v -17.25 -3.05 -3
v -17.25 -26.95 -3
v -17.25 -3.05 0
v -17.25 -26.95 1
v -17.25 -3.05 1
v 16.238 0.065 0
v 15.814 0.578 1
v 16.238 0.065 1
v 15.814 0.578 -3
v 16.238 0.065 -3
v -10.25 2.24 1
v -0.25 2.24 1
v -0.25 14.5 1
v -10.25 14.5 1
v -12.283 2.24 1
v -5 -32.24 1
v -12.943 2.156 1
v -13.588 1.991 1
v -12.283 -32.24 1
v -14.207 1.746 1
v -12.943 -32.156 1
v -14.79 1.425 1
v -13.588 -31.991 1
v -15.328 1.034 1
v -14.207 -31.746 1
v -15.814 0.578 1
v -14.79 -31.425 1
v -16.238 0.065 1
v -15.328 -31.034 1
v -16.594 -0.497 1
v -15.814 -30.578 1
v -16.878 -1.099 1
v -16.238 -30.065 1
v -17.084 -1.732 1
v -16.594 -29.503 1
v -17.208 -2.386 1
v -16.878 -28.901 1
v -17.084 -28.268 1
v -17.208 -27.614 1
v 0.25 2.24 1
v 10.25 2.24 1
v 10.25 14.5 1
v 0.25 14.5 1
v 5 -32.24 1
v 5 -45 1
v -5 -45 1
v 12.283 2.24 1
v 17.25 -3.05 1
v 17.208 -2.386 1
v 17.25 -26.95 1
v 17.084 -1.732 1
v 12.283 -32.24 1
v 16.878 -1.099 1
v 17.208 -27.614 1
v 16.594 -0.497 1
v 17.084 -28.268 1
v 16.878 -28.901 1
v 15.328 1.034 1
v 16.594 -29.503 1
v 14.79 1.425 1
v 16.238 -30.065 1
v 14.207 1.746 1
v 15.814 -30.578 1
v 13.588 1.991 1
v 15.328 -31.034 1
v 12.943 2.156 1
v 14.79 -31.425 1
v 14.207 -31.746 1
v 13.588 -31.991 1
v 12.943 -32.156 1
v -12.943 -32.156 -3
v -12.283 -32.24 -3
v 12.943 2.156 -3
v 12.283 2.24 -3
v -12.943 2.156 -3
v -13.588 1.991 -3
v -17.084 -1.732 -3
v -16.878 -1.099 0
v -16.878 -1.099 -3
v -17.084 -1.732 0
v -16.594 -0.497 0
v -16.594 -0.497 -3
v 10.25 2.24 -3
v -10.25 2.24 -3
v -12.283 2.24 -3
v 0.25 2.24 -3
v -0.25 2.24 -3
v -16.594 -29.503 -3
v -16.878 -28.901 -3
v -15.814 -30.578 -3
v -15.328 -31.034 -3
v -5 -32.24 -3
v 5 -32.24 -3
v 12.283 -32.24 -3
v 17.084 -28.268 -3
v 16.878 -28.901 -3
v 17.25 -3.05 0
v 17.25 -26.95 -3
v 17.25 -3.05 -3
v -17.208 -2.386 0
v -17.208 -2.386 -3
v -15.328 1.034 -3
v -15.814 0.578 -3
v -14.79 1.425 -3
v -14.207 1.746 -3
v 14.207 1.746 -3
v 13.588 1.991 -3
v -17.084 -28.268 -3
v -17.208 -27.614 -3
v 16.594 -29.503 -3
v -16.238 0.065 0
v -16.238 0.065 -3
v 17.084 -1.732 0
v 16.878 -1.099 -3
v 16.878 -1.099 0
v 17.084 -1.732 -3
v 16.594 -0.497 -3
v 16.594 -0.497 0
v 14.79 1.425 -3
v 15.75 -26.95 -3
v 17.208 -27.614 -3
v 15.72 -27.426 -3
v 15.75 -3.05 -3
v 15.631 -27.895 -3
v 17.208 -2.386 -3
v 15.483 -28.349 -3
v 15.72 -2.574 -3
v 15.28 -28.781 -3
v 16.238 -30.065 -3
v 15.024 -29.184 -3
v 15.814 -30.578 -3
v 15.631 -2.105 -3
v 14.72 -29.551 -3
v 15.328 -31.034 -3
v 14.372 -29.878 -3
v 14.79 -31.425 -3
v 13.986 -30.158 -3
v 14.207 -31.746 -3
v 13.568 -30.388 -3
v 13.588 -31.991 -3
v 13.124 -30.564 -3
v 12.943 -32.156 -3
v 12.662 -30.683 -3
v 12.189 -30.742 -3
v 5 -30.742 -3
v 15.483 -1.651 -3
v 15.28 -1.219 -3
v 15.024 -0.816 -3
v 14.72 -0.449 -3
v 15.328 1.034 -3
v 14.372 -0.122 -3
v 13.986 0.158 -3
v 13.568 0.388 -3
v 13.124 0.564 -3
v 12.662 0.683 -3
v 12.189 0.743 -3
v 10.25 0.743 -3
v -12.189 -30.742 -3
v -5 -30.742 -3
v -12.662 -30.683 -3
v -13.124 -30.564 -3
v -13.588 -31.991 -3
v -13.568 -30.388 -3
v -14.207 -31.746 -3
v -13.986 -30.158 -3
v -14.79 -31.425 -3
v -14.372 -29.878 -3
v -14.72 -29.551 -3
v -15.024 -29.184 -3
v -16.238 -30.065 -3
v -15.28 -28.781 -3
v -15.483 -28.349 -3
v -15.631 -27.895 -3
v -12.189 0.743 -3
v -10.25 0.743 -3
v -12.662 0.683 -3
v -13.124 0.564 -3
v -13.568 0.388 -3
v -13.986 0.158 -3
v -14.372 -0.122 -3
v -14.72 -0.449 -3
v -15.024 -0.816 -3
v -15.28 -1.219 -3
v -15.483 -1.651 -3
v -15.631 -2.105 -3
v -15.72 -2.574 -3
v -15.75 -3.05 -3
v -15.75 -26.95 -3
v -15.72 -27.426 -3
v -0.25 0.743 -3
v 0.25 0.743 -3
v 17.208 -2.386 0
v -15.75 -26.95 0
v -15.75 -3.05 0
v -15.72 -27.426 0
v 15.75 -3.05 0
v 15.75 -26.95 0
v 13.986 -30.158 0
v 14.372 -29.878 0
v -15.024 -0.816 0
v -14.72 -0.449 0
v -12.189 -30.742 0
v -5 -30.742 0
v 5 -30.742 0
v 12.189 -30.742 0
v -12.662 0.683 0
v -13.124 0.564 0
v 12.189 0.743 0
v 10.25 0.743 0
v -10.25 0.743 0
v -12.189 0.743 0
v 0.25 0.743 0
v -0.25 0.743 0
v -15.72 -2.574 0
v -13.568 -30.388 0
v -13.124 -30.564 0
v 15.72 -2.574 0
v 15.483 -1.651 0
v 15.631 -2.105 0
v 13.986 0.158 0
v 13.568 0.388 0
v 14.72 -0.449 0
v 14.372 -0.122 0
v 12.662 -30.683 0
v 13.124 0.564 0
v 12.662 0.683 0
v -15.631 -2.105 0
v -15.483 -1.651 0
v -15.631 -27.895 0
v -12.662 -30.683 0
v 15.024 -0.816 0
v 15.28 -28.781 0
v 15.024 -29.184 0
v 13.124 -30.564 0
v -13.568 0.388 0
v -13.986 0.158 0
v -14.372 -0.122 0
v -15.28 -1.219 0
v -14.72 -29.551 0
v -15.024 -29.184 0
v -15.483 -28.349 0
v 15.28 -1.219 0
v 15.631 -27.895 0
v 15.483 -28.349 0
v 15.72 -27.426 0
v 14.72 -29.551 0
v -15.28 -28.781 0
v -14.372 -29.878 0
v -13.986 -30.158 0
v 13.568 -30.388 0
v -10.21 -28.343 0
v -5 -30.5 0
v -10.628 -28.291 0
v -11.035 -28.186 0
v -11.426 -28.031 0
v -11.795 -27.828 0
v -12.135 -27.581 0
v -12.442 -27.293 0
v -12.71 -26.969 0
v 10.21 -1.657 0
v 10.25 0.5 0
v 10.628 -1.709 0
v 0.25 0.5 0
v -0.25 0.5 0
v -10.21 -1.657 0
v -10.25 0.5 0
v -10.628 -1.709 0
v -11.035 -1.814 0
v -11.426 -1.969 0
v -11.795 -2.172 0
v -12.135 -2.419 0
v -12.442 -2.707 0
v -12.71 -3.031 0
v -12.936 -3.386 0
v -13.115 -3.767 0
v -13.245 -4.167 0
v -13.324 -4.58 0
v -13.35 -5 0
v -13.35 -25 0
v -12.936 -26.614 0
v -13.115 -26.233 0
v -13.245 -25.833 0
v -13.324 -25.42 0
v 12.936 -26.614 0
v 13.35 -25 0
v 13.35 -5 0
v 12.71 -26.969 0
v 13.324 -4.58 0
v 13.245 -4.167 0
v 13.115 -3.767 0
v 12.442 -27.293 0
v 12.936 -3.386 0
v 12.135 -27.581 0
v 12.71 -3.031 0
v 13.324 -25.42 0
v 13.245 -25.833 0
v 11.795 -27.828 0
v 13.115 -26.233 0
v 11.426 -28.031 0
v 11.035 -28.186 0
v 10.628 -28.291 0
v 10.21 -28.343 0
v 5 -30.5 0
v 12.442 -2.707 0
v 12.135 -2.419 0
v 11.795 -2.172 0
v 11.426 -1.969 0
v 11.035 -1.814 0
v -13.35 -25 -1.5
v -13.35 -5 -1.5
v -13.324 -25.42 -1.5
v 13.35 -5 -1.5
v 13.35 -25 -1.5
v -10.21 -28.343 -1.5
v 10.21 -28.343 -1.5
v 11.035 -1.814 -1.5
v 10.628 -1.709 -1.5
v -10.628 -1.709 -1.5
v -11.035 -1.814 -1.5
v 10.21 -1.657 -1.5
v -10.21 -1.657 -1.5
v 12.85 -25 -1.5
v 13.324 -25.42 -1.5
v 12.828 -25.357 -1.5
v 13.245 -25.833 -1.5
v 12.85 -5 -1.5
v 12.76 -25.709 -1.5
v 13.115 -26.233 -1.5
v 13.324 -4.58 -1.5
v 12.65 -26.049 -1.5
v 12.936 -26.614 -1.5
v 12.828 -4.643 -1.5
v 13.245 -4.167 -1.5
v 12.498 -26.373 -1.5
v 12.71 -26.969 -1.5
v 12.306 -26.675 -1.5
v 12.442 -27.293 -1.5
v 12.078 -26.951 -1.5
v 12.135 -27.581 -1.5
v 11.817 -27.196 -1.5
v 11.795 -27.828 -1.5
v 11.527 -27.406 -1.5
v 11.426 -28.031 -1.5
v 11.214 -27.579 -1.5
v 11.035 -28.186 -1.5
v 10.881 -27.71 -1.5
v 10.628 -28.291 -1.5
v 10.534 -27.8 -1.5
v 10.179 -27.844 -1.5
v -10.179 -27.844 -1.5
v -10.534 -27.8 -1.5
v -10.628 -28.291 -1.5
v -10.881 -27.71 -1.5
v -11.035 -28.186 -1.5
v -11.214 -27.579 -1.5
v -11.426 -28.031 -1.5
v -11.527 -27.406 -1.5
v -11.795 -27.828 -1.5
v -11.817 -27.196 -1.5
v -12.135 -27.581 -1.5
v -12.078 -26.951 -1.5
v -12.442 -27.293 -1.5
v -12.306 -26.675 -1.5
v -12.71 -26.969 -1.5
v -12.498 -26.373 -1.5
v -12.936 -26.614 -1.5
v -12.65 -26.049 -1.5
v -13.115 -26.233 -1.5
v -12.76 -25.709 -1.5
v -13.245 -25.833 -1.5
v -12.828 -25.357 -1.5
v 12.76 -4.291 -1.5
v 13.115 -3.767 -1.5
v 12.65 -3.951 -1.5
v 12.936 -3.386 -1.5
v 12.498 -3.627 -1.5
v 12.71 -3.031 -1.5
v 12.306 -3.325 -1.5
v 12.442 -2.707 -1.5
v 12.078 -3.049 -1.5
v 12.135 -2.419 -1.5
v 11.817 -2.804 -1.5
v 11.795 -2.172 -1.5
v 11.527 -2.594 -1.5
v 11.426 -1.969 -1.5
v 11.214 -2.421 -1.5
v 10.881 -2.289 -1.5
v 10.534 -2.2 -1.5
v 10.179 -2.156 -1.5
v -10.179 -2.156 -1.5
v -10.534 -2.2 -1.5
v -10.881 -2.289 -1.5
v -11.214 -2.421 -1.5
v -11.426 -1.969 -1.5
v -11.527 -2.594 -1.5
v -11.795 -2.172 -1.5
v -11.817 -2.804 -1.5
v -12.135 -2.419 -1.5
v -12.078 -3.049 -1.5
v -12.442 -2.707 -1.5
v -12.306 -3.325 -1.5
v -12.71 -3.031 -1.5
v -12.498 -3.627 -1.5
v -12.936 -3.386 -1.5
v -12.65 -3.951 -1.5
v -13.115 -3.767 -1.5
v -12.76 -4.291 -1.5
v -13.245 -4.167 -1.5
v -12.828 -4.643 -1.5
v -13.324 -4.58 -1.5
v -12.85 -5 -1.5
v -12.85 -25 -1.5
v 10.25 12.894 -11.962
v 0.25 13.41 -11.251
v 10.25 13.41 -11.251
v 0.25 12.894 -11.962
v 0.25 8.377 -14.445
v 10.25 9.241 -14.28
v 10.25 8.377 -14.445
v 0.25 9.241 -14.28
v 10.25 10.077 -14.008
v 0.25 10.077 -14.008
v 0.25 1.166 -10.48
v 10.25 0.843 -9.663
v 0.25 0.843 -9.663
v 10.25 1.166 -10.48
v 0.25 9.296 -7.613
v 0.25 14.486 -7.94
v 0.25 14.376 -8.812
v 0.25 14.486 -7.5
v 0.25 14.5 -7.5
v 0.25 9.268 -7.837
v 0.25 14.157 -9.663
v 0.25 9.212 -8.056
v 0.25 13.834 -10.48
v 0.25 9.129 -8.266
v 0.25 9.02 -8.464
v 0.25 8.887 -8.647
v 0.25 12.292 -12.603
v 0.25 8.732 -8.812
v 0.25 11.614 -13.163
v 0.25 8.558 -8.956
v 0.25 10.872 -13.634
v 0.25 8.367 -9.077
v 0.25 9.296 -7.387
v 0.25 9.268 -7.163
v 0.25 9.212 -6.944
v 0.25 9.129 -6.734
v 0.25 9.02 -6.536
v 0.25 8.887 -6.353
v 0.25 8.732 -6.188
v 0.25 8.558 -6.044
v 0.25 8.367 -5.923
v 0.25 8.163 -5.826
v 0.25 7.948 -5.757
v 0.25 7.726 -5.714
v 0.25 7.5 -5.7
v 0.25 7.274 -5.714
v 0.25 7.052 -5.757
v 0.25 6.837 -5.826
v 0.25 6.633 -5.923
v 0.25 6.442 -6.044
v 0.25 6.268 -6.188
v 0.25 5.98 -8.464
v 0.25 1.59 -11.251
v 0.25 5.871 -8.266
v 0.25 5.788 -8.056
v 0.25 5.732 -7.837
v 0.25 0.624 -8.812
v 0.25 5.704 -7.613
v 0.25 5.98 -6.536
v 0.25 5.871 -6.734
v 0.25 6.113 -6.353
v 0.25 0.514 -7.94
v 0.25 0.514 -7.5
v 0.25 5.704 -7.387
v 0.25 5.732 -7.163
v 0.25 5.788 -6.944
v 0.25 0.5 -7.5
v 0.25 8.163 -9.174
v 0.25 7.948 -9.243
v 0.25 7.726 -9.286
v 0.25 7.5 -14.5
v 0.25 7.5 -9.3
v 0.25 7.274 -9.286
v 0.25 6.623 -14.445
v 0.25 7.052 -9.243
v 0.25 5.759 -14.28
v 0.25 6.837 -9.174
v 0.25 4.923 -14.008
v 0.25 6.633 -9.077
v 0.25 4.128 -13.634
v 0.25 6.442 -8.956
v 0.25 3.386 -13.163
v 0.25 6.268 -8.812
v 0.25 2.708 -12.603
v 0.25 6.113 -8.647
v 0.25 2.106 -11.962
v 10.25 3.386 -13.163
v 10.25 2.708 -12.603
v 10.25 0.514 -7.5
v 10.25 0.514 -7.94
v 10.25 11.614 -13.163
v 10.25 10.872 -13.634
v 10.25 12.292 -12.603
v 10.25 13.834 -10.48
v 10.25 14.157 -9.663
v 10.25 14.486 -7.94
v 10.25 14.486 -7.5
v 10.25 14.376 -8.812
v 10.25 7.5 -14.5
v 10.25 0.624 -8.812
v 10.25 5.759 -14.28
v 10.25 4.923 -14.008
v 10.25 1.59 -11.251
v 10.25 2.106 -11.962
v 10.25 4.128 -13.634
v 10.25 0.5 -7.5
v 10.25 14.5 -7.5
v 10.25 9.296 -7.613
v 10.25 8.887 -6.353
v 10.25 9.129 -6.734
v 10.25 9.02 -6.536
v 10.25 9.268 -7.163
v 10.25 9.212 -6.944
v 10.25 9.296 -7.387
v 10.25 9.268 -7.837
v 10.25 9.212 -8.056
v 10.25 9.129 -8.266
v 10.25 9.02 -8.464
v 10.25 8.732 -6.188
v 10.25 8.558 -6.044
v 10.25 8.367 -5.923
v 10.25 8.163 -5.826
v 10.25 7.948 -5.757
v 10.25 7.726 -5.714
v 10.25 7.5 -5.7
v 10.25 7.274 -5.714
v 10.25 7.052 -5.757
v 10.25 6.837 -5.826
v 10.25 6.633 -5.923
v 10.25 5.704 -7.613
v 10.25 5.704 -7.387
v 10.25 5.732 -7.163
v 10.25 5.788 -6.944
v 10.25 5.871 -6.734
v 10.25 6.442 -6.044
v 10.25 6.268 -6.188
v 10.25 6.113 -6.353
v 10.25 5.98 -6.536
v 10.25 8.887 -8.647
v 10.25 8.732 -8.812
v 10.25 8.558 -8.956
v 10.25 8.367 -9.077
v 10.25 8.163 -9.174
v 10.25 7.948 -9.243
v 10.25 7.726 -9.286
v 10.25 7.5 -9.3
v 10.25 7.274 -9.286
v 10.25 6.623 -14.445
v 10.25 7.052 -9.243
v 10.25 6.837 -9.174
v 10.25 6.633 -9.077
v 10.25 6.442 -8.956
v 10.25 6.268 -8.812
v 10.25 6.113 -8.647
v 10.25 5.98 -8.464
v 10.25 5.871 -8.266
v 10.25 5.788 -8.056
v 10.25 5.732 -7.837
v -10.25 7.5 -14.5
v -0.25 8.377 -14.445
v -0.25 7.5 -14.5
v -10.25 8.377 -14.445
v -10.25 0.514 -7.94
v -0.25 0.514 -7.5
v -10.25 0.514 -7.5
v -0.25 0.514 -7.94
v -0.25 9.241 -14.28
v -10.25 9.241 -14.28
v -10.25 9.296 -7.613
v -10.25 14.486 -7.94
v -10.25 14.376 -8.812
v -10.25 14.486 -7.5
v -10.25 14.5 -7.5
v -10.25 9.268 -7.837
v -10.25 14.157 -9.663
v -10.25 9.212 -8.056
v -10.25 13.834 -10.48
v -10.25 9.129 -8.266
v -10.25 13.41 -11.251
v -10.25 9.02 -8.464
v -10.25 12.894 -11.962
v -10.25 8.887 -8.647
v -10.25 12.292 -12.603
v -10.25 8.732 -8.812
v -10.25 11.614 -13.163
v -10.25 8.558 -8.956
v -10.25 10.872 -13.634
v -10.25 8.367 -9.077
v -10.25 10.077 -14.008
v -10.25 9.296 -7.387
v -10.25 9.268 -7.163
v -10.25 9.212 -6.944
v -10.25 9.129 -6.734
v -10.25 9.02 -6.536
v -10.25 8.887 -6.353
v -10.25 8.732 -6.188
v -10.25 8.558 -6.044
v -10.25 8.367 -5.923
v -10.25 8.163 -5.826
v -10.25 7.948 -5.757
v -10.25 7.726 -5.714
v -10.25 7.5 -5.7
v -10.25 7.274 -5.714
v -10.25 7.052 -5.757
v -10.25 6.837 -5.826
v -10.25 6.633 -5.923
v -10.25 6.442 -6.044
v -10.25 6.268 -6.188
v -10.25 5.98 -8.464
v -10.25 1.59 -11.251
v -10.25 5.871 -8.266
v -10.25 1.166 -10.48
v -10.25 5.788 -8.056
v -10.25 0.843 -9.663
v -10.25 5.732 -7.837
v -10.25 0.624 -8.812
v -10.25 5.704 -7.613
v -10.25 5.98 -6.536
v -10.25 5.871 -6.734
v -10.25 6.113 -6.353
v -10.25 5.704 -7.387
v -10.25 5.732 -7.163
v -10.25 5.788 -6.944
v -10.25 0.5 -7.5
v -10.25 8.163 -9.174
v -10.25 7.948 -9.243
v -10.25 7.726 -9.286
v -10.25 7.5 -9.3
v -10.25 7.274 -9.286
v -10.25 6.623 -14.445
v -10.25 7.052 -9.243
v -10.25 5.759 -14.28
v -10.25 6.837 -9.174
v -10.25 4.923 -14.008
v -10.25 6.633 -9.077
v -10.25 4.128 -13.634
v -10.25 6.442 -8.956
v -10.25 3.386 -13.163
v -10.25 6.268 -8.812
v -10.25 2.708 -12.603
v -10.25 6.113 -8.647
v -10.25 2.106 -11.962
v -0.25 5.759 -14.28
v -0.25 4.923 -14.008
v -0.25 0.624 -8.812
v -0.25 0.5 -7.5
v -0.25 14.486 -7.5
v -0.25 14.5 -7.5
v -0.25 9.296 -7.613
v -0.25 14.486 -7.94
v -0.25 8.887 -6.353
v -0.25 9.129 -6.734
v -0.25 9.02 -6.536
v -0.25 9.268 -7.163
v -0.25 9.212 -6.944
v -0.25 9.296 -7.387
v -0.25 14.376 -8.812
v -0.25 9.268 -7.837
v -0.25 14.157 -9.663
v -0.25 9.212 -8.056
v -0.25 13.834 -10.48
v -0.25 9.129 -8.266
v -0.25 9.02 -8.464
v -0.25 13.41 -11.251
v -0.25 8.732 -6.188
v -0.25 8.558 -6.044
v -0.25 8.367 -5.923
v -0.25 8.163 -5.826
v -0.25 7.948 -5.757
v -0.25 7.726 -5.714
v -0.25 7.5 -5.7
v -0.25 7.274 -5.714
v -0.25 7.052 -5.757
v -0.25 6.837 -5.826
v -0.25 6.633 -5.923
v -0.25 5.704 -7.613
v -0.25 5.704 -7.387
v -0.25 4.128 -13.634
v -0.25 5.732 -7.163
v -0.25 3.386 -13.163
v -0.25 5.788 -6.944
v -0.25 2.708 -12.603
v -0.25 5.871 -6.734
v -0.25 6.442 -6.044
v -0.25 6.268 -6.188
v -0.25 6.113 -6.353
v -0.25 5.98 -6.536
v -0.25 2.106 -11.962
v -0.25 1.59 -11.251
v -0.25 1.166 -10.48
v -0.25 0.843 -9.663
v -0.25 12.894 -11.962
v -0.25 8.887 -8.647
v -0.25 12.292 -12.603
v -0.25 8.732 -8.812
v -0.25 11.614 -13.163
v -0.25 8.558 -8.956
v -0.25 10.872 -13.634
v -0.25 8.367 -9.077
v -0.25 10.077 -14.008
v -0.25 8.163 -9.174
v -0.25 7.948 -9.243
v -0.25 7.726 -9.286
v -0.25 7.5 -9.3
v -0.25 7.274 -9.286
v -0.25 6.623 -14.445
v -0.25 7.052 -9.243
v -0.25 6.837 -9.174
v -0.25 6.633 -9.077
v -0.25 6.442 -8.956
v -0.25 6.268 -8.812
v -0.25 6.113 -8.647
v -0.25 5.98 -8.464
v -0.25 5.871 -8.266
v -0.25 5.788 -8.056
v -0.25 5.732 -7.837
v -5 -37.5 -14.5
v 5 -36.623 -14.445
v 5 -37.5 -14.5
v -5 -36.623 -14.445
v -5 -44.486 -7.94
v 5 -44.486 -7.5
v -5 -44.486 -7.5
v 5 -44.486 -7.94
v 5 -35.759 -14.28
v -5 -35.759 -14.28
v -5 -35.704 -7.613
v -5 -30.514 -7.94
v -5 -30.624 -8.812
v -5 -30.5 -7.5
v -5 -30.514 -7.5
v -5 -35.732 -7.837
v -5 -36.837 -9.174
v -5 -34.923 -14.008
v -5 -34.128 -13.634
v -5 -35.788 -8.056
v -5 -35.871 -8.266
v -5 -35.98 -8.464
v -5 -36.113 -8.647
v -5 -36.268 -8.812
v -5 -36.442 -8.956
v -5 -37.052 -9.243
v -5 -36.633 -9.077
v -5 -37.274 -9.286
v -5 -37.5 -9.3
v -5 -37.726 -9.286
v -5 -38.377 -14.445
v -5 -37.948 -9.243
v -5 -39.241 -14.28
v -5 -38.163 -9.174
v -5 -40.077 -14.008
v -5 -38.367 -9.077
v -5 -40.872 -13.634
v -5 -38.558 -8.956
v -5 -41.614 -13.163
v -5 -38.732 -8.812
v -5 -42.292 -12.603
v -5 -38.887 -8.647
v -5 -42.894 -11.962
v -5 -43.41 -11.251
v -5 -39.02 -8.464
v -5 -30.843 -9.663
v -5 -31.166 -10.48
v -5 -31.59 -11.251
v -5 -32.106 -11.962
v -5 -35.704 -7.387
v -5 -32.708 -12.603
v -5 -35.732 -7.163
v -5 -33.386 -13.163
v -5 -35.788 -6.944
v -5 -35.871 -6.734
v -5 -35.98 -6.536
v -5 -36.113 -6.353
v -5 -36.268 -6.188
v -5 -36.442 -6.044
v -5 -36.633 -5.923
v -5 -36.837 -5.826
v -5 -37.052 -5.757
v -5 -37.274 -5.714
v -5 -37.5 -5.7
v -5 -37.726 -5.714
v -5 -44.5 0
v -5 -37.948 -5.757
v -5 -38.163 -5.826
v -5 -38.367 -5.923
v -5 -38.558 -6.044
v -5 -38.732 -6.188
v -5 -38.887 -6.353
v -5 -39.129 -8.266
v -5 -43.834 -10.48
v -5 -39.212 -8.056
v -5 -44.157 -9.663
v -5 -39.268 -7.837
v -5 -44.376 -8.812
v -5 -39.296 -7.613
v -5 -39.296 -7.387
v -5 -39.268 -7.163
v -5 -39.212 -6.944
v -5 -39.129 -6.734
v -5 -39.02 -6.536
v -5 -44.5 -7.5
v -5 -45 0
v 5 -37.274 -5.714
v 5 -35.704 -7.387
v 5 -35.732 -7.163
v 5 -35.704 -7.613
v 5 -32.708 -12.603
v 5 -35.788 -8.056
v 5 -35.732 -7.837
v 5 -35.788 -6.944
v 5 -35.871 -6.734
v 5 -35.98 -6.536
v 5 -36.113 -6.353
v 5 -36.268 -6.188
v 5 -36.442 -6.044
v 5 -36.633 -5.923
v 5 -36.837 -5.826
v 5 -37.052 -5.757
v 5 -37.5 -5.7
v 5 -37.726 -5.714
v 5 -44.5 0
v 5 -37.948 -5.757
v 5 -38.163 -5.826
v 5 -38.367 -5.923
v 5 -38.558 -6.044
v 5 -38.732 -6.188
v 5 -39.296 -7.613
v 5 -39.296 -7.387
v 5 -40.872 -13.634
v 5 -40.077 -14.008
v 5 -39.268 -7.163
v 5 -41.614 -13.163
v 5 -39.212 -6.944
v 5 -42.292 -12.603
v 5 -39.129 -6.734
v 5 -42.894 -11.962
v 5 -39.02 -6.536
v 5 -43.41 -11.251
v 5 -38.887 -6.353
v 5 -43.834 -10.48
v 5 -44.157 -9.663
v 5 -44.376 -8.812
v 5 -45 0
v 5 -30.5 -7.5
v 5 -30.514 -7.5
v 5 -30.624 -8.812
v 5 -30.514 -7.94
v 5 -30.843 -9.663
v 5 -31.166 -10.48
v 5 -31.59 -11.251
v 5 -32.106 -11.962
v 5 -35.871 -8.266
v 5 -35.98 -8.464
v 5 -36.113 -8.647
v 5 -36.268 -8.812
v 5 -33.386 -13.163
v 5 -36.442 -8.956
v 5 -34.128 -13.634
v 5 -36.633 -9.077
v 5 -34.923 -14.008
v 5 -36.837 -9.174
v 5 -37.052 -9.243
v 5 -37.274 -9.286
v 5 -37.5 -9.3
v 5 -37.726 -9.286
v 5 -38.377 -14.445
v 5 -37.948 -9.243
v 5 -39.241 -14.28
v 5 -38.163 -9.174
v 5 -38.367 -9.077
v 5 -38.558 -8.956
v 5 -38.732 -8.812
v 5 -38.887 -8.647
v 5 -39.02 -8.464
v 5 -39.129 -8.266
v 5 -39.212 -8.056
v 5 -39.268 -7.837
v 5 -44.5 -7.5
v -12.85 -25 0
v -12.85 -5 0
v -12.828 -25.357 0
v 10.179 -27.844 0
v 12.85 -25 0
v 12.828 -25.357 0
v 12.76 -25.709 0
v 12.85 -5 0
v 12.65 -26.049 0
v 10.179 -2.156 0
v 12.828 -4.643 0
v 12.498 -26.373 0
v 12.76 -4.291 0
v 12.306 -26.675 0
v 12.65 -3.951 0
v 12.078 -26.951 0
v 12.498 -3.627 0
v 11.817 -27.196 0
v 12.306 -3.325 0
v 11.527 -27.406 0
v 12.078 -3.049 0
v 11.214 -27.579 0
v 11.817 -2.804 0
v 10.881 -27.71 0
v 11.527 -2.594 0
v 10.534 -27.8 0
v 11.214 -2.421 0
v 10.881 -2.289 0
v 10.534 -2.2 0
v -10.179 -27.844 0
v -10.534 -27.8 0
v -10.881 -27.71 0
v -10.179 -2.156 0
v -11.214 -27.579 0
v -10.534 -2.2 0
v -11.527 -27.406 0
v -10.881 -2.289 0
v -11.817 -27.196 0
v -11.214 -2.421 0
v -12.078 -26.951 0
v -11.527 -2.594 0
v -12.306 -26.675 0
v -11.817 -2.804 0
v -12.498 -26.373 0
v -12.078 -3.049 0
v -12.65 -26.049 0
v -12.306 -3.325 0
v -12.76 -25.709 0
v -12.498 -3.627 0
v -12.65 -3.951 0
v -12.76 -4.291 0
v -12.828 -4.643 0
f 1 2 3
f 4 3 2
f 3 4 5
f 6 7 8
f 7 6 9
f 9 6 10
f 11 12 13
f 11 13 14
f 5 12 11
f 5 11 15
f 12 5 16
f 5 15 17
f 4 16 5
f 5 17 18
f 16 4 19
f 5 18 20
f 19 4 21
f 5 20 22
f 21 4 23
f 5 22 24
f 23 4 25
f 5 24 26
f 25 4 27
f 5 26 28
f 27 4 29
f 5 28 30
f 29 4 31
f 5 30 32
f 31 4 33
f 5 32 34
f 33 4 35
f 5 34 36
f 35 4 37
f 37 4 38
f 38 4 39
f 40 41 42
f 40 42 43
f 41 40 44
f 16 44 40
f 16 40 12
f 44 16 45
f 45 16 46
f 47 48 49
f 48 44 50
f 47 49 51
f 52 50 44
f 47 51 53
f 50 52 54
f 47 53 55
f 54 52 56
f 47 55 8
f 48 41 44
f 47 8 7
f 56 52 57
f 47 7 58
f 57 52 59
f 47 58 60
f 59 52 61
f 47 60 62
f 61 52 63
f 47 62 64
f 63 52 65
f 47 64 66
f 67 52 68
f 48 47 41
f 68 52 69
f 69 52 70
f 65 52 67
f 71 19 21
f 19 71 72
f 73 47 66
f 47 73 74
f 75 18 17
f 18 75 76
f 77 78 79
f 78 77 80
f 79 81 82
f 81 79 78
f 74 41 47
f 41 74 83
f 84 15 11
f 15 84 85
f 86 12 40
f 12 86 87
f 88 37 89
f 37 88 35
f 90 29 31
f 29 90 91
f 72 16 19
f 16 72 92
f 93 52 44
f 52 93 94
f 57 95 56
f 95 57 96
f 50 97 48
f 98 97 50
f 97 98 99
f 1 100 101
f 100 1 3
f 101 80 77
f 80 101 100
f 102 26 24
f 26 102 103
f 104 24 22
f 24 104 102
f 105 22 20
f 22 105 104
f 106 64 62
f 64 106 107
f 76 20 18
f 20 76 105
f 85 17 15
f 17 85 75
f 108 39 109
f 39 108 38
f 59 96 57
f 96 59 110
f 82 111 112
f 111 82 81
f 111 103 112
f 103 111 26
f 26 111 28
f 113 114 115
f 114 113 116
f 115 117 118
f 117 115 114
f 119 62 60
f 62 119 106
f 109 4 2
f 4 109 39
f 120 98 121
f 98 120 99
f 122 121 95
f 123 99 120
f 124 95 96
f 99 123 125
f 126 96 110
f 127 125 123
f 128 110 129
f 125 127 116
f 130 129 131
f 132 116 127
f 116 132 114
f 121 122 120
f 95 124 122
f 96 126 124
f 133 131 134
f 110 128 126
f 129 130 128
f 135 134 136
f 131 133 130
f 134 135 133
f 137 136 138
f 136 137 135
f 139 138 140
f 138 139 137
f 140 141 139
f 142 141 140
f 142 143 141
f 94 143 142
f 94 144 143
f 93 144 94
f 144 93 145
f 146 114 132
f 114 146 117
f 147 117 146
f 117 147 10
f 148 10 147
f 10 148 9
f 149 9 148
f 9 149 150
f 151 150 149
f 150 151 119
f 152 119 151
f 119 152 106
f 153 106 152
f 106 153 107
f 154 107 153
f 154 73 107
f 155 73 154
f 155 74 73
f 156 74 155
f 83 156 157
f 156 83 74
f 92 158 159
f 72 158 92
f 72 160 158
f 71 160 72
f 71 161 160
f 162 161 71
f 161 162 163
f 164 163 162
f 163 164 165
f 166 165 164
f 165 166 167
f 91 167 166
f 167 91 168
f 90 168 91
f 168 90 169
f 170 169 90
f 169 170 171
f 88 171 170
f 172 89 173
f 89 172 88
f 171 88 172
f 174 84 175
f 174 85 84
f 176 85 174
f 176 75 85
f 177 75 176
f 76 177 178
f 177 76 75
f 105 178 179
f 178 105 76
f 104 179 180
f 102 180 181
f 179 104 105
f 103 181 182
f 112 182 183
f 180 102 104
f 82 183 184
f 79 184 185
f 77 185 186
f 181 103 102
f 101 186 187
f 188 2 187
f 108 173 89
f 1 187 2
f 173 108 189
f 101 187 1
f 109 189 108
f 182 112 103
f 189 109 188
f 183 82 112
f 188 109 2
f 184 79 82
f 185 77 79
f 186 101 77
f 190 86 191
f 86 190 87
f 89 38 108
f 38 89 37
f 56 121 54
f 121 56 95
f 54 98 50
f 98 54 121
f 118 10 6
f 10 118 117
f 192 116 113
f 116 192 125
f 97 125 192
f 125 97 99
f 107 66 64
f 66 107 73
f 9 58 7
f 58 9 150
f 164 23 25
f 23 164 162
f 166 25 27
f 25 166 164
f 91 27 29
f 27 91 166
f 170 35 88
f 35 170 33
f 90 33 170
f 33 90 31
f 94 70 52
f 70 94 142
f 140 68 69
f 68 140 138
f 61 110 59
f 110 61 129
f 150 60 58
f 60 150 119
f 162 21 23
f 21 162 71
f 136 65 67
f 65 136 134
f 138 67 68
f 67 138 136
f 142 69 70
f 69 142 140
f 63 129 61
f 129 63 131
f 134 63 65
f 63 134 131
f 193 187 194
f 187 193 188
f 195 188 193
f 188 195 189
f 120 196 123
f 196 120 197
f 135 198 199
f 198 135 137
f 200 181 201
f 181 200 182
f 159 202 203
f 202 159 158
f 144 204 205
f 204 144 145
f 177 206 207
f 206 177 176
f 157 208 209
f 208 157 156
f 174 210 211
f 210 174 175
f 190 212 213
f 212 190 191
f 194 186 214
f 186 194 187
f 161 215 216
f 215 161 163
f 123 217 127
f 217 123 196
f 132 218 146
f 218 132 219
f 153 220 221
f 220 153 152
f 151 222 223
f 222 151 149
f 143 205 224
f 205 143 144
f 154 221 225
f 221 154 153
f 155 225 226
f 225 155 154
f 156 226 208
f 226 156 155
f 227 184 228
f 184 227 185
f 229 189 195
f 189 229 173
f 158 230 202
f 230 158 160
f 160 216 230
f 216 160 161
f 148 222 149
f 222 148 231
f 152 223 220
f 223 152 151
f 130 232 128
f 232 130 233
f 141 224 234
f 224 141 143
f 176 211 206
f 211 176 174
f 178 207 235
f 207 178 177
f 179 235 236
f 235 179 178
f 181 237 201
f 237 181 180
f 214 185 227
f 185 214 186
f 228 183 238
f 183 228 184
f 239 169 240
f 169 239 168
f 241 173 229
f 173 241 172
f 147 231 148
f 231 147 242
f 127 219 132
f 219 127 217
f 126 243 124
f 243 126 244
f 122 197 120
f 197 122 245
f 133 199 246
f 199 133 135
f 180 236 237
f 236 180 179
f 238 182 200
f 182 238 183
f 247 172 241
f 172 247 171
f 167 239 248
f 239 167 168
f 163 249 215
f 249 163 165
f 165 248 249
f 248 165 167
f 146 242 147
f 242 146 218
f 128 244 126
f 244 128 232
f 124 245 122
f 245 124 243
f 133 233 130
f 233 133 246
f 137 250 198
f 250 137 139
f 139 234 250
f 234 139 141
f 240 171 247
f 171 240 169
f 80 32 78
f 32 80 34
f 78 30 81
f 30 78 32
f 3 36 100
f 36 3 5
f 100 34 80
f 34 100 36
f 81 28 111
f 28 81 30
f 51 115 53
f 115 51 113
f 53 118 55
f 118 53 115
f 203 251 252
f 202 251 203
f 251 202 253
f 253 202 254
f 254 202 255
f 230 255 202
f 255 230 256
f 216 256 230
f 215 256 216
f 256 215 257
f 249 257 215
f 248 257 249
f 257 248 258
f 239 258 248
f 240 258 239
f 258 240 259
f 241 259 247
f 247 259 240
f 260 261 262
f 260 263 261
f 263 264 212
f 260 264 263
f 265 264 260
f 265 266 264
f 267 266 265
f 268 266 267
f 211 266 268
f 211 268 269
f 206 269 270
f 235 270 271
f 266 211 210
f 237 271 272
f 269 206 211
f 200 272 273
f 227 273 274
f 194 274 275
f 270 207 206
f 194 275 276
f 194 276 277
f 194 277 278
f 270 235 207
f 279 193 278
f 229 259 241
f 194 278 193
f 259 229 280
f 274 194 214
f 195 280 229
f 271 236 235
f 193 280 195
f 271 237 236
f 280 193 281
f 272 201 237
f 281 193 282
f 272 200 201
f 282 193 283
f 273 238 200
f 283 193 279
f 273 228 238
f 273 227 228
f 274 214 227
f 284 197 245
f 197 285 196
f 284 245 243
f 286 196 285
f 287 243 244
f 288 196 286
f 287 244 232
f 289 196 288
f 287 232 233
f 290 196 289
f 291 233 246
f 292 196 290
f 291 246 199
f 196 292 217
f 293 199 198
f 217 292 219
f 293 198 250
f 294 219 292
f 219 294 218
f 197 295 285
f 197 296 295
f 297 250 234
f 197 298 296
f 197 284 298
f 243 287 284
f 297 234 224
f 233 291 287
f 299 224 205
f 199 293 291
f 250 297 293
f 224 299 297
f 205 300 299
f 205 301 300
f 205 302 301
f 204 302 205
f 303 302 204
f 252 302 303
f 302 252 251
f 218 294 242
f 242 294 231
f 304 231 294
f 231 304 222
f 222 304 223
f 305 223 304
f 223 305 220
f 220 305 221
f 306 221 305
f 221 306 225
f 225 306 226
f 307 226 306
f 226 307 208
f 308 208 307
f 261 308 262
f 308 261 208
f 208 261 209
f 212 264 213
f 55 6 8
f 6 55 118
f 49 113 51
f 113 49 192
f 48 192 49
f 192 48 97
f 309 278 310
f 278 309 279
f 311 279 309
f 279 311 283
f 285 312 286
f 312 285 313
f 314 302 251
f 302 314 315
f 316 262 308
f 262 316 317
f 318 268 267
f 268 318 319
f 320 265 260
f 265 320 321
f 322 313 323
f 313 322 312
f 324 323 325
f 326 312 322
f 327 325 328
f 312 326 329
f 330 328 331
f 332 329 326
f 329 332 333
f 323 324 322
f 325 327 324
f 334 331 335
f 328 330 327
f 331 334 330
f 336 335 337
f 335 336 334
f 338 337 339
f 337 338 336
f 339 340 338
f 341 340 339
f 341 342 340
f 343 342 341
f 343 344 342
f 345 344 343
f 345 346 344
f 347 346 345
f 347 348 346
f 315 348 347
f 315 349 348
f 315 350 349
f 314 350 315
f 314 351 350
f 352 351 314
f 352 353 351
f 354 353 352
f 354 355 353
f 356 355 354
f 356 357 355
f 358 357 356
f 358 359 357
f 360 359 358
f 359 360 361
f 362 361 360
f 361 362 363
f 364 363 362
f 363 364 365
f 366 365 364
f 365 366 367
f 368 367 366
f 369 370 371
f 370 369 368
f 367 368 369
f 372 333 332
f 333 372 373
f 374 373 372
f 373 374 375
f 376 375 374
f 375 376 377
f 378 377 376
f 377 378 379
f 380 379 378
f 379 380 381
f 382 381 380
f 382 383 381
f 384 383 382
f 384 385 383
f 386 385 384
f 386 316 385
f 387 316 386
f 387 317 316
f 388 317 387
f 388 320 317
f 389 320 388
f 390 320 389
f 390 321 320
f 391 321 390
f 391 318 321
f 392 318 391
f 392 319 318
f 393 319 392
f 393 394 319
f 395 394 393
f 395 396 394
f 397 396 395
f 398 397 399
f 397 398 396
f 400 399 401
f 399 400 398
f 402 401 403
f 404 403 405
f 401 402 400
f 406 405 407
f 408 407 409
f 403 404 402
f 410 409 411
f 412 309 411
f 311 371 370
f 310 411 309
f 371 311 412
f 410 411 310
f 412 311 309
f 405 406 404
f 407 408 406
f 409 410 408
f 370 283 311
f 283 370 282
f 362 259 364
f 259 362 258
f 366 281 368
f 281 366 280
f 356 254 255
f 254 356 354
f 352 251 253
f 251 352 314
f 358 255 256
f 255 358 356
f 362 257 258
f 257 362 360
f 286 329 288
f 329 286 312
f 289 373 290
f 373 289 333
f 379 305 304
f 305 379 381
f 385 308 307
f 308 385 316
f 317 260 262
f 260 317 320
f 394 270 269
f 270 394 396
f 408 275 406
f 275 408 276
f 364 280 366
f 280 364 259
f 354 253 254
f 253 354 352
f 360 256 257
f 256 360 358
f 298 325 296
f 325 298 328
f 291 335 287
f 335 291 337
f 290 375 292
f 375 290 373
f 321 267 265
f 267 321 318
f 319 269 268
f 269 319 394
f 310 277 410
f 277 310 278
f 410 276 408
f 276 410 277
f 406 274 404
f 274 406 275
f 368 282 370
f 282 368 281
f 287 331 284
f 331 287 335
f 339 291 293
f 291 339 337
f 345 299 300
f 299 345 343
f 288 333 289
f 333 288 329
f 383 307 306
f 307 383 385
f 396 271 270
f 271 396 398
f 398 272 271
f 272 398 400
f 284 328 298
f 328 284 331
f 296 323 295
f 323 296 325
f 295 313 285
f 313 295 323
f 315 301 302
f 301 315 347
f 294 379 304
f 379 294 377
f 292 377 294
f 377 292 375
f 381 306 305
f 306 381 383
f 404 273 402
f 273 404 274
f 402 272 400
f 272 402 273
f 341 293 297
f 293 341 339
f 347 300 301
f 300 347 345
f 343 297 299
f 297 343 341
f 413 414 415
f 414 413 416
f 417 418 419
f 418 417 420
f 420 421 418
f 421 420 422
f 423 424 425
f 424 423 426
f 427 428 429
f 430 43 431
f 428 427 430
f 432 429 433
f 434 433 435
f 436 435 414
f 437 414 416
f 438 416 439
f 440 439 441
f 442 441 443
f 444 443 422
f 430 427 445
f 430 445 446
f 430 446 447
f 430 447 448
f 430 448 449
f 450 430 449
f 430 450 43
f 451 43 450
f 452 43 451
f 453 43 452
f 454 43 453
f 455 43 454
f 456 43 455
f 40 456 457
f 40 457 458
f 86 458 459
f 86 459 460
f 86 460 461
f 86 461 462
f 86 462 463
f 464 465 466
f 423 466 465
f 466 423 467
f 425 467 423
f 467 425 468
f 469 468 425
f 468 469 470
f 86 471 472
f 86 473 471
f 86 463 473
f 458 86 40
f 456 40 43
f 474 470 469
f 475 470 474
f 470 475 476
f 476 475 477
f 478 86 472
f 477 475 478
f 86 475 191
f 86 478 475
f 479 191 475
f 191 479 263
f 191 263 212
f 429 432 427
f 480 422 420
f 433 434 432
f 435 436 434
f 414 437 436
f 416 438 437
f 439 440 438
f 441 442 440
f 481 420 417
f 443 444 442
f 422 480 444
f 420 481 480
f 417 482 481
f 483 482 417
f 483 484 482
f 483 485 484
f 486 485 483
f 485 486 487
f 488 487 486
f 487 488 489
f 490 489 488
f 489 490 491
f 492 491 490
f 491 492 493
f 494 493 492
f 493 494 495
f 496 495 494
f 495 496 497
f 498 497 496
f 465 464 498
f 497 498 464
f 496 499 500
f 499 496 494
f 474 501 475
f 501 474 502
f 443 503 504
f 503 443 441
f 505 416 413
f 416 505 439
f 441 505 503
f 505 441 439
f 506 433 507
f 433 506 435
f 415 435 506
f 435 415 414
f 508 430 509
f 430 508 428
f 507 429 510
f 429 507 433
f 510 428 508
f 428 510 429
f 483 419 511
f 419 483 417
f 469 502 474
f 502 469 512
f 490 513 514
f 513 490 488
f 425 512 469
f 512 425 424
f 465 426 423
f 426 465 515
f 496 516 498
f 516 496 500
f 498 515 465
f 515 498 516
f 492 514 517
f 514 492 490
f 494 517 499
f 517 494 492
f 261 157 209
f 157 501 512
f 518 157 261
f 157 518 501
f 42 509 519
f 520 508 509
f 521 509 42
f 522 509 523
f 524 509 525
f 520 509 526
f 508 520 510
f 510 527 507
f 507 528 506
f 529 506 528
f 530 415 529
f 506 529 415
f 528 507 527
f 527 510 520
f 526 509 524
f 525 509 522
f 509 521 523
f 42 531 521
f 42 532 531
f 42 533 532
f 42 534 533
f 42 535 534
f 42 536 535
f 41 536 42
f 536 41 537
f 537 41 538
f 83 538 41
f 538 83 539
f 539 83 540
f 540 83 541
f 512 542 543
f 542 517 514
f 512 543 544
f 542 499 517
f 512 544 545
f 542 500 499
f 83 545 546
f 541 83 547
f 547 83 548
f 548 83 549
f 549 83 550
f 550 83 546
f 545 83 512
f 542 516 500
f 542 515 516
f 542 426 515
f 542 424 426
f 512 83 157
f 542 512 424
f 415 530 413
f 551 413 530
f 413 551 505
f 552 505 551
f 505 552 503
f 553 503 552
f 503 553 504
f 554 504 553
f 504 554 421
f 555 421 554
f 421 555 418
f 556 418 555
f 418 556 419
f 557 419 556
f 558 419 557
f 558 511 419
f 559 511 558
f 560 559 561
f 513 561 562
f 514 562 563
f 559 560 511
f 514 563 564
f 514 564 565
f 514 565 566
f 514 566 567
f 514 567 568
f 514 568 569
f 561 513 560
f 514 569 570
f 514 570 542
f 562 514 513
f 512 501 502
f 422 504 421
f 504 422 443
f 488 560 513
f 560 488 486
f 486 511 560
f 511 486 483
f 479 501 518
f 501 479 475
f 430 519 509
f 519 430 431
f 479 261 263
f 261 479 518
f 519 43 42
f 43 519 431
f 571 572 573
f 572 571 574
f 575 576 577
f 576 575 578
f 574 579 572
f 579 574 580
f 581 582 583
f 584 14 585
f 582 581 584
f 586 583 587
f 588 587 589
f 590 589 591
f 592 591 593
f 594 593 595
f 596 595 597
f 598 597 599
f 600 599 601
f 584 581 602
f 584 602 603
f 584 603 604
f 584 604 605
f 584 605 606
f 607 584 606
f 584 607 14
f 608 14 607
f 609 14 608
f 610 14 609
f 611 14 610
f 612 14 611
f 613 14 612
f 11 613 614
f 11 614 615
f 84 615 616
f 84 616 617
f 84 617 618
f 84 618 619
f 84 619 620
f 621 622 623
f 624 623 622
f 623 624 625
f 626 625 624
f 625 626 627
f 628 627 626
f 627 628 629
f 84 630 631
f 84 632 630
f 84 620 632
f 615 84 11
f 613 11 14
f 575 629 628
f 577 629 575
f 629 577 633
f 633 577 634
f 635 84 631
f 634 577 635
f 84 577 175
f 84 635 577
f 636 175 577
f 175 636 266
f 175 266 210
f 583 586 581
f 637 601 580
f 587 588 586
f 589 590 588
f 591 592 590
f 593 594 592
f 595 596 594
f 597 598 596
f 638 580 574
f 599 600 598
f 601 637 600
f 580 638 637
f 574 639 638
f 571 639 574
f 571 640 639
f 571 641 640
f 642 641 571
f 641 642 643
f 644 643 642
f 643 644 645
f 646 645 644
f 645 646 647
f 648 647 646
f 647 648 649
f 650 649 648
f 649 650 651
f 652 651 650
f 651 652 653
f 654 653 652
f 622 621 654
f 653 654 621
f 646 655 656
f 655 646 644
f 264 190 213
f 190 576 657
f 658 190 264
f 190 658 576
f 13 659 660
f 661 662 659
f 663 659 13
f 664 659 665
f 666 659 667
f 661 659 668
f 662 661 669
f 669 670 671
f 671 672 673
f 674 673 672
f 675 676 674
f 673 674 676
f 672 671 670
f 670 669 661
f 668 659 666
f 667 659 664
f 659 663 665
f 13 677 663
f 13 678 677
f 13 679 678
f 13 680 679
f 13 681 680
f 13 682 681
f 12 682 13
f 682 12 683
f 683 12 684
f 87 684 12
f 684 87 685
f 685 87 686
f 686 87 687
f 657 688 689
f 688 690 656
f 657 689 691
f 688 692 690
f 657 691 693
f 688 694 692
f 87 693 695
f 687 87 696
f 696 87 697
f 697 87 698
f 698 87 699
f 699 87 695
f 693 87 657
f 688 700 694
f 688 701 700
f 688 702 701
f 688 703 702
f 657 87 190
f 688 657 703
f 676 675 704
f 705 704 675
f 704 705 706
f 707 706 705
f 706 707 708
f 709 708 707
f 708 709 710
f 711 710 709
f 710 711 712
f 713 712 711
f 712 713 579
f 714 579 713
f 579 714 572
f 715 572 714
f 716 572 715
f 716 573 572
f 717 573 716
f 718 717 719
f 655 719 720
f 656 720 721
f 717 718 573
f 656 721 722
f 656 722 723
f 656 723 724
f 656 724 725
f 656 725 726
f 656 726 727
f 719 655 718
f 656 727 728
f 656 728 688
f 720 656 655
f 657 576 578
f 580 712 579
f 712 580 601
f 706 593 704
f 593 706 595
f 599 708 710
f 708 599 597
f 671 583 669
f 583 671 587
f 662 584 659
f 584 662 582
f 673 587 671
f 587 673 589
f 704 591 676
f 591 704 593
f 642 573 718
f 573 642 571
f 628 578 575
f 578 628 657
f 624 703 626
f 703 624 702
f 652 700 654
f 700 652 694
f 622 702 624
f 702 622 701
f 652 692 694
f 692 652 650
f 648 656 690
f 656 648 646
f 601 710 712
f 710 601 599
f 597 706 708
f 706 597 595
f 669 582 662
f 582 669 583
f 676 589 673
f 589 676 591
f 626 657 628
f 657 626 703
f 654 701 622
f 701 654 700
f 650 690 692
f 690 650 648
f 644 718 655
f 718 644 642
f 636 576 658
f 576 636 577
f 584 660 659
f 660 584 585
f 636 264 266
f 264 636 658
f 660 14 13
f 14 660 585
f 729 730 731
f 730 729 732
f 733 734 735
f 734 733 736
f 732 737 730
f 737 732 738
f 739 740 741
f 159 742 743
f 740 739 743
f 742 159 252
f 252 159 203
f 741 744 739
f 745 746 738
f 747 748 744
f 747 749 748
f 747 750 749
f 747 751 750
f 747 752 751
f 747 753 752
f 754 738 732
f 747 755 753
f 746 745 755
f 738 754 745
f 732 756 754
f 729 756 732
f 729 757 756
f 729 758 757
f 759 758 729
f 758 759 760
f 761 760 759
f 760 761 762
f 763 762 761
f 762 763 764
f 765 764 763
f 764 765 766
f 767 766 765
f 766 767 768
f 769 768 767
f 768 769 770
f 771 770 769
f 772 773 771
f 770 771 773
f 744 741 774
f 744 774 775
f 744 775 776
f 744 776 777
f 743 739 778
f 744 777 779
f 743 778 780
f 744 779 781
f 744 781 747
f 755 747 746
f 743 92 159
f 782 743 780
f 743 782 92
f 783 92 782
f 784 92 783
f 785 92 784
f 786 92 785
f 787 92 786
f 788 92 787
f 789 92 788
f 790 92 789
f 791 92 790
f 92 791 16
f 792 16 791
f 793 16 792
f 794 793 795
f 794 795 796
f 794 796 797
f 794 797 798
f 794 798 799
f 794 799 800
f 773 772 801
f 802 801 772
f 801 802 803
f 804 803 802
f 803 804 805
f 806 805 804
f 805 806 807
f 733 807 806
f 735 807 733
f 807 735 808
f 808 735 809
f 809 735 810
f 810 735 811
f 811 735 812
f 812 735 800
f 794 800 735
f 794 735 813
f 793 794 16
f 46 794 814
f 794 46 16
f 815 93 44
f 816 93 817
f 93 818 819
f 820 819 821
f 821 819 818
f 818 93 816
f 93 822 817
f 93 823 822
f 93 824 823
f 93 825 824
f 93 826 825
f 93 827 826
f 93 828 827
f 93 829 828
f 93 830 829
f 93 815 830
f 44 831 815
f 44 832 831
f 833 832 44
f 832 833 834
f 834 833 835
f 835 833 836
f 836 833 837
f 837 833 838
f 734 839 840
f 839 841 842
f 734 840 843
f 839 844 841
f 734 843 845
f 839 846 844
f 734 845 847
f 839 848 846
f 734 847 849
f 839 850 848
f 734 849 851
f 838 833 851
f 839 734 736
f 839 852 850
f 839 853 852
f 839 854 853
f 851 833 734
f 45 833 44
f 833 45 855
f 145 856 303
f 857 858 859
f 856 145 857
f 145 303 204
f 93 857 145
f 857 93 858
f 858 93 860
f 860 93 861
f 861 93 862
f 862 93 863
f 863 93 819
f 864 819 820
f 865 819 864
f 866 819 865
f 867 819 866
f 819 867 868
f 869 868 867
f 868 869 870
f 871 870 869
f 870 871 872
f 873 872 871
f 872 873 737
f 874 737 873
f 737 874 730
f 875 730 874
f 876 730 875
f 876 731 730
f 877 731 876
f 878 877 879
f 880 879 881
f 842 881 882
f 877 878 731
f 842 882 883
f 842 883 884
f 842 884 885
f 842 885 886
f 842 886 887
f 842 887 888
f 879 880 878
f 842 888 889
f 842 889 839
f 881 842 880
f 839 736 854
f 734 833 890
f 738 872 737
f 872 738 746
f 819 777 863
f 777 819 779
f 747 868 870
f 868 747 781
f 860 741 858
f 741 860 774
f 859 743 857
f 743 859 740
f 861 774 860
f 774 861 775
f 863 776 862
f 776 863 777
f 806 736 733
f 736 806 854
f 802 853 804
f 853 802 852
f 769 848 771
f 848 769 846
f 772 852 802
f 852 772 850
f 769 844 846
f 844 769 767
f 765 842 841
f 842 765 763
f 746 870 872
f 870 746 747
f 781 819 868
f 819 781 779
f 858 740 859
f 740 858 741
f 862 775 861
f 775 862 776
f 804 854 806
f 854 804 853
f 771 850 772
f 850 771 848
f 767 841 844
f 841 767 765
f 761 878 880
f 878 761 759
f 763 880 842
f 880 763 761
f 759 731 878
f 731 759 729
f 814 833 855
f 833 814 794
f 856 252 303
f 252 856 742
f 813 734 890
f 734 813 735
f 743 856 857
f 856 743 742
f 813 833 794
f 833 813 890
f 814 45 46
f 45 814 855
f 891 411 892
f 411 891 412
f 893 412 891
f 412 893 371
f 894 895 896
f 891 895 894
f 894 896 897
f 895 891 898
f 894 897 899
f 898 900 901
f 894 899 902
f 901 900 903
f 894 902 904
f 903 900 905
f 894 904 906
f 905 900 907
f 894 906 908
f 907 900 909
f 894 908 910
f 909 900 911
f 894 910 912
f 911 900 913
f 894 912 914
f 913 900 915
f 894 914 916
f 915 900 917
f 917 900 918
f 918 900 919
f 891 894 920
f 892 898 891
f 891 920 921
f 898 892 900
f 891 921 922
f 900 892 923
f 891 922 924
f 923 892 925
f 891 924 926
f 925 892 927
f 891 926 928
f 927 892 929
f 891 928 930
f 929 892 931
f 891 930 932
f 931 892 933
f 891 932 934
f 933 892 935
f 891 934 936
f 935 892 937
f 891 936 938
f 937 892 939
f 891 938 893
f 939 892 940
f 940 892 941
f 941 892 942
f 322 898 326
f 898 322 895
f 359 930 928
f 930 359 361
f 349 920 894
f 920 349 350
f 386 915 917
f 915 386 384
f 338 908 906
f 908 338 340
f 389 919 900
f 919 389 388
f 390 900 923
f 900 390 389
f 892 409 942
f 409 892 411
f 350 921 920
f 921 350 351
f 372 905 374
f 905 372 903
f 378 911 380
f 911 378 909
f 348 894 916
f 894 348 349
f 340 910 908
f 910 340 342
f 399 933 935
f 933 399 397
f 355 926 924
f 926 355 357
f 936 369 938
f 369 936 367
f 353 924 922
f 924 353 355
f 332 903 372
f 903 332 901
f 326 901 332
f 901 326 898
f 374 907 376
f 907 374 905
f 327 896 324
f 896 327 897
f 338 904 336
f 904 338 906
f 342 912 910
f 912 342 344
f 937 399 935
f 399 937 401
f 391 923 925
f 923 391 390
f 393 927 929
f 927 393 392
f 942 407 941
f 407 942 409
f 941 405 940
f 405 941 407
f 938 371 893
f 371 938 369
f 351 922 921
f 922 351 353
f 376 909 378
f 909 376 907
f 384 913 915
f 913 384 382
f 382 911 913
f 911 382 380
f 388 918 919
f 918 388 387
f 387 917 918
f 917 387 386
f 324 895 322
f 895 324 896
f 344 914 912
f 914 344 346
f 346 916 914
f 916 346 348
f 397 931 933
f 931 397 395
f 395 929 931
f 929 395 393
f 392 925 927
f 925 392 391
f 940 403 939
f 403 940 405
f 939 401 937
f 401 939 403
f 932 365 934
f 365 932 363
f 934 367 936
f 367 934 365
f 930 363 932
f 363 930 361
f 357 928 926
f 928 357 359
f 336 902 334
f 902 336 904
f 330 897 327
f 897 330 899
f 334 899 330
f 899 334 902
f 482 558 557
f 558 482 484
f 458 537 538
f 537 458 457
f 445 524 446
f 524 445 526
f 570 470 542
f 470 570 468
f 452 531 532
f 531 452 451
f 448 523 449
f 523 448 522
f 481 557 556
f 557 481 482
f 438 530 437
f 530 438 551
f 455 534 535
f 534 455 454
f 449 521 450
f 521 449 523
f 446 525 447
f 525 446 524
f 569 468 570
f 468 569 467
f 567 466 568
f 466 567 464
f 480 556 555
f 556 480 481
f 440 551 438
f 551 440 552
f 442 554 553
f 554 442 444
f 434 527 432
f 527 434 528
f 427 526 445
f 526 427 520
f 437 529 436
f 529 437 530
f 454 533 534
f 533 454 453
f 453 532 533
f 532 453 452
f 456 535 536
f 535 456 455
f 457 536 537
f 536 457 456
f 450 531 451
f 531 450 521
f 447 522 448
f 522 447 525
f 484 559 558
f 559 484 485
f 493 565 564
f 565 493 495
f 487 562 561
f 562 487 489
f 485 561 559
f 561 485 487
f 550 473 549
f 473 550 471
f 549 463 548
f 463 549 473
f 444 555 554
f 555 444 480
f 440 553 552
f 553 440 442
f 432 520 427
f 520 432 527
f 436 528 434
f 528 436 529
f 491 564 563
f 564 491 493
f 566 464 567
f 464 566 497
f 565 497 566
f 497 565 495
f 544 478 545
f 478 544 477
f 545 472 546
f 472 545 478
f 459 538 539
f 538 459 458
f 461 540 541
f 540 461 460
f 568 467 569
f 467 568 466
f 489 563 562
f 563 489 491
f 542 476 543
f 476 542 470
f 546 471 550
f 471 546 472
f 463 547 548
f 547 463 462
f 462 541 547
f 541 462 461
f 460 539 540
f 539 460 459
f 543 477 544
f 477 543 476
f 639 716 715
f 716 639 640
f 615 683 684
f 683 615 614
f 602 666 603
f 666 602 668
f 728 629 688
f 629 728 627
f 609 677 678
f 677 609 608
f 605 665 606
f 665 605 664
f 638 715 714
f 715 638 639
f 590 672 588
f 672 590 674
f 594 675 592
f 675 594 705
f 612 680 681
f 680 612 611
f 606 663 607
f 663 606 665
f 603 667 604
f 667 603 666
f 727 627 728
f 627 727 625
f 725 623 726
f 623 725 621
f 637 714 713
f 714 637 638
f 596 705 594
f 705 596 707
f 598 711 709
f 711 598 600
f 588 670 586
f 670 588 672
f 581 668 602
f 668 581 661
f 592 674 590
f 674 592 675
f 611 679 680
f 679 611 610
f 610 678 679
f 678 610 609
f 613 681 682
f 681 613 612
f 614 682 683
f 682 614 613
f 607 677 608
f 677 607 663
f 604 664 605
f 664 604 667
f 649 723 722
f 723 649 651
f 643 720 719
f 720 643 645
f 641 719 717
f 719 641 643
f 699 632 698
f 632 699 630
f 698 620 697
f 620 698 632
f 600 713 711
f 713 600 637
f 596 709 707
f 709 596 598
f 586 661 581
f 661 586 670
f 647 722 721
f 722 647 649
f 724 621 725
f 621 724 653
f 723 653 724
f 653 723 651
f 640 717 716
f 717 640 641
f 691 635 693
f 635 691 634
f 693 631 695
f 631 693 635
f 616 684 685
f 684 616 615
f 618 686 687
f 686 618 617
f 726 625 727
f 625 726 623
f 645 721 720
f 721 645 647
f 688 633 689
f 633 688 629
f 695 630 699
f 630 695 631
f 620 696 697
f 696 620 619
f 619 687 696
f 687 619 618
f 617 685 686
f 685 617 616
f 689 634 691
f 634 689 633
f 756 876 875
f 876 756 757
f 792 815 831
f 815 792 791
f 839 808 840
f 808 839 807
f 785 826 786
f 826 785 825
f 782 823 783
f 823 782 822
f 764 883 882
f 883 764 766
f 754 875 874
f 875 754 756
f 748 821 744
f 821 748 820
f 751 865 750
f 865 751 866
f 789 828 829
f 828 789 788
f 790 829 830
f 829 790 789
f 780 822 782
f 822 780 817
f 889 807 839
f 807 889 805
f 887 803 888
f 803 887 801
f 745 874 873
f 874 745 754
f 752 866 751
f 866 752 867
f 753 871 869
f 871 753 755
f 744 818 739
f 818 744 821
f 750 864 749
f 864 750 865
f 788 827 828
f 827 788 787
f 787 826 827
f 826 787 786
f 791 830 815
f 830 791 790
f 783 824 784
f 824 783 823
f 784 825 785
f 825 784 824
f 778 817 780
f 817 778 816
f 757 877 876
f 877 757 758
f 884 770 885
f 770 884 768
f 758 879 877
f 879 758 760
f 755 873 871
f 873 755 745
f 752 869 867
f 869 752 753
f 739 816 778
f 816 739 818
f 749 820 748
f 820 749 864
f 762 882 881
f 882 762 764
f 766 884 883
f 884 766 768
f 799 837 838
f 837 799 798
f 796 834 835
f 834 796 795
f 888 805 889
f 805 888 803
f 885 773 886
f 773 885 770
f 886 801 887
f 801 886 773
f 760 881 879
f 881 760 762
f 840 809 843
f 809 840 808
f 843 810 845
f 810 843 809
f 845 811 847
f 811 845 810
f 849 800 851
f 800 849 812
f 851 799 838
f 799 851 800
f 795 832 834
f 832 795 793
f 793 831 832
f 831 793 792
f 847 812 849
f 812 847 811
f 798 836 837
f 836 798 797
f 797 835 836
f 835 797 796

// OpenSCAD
$fn = 50;


difference() {
	union() {
		translate(v = [0, -15.0000000000, -3]) {
			rotate(a = [0, 0, 0]) {
				difference() {
					union() {
						hull() {
							translate(v = [-11.9500000000, 11.9500000000, 0]) {
								cylinder(h = 4, r = 5.3000000000);
							}
							translate(v = [11.9500000000, 11.9500000000, 0]) {
								cylinder(h = 4, r = 5.3000000000);
							}
							translate(v = [-11.9500000000, -11.9500000000, 0]) {
								cylinder(h = 4, r = 5.3000000000);
							}
							translate(v = [11.9500000000, -11.9500000000, 0]) {
								cylinder(h = 4, r = 5.3000000000);
							}
						}
					}
					union() {
						hull() {
							translate(v = [-11.9500000000, 11.9500000000, 0]) {
								cylinder(h = 4, r = 3.8000000000);
							}
							translate(v = [11.9500000000, 11.9500000000, 0]) {
								cylinder(h = 4, r = 3.8000000000);
							}
							translate(v = [-11.9500000000, -11.9500000000, 0]) {
								cylinder(h = 4, r = 3.8000000000);
							}
							translate(v = [11.9500000000, -11.9500000000, 0]) {
								cylinder(h = 4, r = 3.8000000000);
							}
						}
					}
				}
			}
		}
		translate(v = [0, -15.0000000000, 0]) {
			hull() {
				translate(v = [-11.9500000000, 11.9500000000, 0]) {
					cylinder(h = 1, r = 5.3000000000);
				}
				translate(v = [11.9500000000, 11.9500000000, 0]) {
					cylinder(h = 1, r = 5.3000000000);
				}
				translate(v = [-11.9500000000, -11.9500000000, 0]) {
					cylinder(h = 1, r = 5.3000000000);
				}
				translate(v = [11.9500000000, -11.9500000000, 0]) {
					cylinder(h = 1, r = 5.3000000000);
				}
			}
		}
		translate(v = [0.0000000000, -15.0000000000, -1.5000000000]) {
			hull() {
				translate(v = [-10.0000000000, 10.0000000000, 0]) {
					cylinder(h = 1.5000000000, r = 3.3500000000);
				}
				translate(v = [10.0000000000, 10.0000000000, 0]) {
					cylinder(h = 1.5000000000, r = 3.3500000000);
				}
				translate(v = [-10.0000000000, -10.0000000000, 0]) {
					cylinder(h = 1.5000000000, r = 3.3500000000);
				}
				translate(v = [10.0000000000, -10.0000000000, 0]) {
					cylinder(h = 1.5000000000, r = 3.3500000000);
				}
			}
		}
		translate(v = [0.2500000000, 7.5000000000, -7.5000000000]) {
			rotate(a = [0, 90, 0]) {
				cylinder(h = 10, r = 7.0000000000);
			}
		}
		translate(v = [0.2500000000, 0.5000000000, -7.5000000000]) {
			cube(size = [10, 14, 7.5000000000]);
		}
		translate(v = [0.2500000000, -15.0000000000, 0.0000000000]) {
			cube(size = [10, 29.5000000000, 1]);
		}
		translate(v = [-10.2500000000, 7.5000000000, -7.5000000000]) {
			rotate(a = [0, 90, 0]) {
				cylinder(h = 10, r = 7.0000000000);
			}
		}
		translate(v = [-10.2500000000, 0.5000000000, -7.5000000000]) {
			cube(size = [10, 14, 7.5000000000]);
		}
		translate(v = [-10.2500000000, -15.0000000000, 0.0000000000]) {
			cube(size = [10, 29.5000000000, 1]);
		}
		translate(v = [-5.0000000000, -37.5000000000, -7.5000000000]) {
			rotate(a = [0, 90, 0]) {
				cylinder(h = 10, r = 7.0000000000);
			}
		}
		translate(v = [-5.0000000000, -44.5000000000, -7.5000000000]) {
			cube(size = [10, 14, 7.5000000000]);
		}
		translate(v = [-5.0000000000, -45.0000000000, 0.0000000000]) {
			cube(size = [10, 14.5000000000, 1]);
		}
	}
	union() {
		translate(v = [0.0000000000, -15.0000000000, -1.5000000000]) {
			hull() {
				translate(v = [-10.0000000000, 10.0000000000, 0]) {
					cylinder(h = 1.5000000000, r = 2.8500000000);
				}
				translate(v = [10.0000000000, 10.0000000000, 0]) {
					cylinder(h = 1.5000000000, r = 2.8500000000);
				}
				translate(v = [-10.0000000000, -10.0000000000, 0]) {
					cylinder(h = 1.5000000000, r = 2.8500000000);
				}
				translate(v = [10.0000000000, -10.0000000000, 0]) {
					cylinder(h = 1.5000000000, r = 2.8500000000);
				}
			}
		}
		translate(v = [0.2500000000, 7.5000000000, -7.5000000000]) {
			rotate(a = [0, 90, 0]) {
				cylinder(h = 10, r = 1.8000000000);
			}
		}
		translate(v = [-10.2500000000, 7.5000000000, -7.5000000000]) {
			rotate(a = [0, 90, 0]) {
				cylinder(h = 10, r = 1.8000000000);
			}
		}
		translate(v = [-5.0000000000, -37.5000000000, -7.5000000000]) {
			rotate(a = [0, 90, 0]) {
				cylinder(h = 10, r = 1.8000000000);
			}
		}
	}
}
